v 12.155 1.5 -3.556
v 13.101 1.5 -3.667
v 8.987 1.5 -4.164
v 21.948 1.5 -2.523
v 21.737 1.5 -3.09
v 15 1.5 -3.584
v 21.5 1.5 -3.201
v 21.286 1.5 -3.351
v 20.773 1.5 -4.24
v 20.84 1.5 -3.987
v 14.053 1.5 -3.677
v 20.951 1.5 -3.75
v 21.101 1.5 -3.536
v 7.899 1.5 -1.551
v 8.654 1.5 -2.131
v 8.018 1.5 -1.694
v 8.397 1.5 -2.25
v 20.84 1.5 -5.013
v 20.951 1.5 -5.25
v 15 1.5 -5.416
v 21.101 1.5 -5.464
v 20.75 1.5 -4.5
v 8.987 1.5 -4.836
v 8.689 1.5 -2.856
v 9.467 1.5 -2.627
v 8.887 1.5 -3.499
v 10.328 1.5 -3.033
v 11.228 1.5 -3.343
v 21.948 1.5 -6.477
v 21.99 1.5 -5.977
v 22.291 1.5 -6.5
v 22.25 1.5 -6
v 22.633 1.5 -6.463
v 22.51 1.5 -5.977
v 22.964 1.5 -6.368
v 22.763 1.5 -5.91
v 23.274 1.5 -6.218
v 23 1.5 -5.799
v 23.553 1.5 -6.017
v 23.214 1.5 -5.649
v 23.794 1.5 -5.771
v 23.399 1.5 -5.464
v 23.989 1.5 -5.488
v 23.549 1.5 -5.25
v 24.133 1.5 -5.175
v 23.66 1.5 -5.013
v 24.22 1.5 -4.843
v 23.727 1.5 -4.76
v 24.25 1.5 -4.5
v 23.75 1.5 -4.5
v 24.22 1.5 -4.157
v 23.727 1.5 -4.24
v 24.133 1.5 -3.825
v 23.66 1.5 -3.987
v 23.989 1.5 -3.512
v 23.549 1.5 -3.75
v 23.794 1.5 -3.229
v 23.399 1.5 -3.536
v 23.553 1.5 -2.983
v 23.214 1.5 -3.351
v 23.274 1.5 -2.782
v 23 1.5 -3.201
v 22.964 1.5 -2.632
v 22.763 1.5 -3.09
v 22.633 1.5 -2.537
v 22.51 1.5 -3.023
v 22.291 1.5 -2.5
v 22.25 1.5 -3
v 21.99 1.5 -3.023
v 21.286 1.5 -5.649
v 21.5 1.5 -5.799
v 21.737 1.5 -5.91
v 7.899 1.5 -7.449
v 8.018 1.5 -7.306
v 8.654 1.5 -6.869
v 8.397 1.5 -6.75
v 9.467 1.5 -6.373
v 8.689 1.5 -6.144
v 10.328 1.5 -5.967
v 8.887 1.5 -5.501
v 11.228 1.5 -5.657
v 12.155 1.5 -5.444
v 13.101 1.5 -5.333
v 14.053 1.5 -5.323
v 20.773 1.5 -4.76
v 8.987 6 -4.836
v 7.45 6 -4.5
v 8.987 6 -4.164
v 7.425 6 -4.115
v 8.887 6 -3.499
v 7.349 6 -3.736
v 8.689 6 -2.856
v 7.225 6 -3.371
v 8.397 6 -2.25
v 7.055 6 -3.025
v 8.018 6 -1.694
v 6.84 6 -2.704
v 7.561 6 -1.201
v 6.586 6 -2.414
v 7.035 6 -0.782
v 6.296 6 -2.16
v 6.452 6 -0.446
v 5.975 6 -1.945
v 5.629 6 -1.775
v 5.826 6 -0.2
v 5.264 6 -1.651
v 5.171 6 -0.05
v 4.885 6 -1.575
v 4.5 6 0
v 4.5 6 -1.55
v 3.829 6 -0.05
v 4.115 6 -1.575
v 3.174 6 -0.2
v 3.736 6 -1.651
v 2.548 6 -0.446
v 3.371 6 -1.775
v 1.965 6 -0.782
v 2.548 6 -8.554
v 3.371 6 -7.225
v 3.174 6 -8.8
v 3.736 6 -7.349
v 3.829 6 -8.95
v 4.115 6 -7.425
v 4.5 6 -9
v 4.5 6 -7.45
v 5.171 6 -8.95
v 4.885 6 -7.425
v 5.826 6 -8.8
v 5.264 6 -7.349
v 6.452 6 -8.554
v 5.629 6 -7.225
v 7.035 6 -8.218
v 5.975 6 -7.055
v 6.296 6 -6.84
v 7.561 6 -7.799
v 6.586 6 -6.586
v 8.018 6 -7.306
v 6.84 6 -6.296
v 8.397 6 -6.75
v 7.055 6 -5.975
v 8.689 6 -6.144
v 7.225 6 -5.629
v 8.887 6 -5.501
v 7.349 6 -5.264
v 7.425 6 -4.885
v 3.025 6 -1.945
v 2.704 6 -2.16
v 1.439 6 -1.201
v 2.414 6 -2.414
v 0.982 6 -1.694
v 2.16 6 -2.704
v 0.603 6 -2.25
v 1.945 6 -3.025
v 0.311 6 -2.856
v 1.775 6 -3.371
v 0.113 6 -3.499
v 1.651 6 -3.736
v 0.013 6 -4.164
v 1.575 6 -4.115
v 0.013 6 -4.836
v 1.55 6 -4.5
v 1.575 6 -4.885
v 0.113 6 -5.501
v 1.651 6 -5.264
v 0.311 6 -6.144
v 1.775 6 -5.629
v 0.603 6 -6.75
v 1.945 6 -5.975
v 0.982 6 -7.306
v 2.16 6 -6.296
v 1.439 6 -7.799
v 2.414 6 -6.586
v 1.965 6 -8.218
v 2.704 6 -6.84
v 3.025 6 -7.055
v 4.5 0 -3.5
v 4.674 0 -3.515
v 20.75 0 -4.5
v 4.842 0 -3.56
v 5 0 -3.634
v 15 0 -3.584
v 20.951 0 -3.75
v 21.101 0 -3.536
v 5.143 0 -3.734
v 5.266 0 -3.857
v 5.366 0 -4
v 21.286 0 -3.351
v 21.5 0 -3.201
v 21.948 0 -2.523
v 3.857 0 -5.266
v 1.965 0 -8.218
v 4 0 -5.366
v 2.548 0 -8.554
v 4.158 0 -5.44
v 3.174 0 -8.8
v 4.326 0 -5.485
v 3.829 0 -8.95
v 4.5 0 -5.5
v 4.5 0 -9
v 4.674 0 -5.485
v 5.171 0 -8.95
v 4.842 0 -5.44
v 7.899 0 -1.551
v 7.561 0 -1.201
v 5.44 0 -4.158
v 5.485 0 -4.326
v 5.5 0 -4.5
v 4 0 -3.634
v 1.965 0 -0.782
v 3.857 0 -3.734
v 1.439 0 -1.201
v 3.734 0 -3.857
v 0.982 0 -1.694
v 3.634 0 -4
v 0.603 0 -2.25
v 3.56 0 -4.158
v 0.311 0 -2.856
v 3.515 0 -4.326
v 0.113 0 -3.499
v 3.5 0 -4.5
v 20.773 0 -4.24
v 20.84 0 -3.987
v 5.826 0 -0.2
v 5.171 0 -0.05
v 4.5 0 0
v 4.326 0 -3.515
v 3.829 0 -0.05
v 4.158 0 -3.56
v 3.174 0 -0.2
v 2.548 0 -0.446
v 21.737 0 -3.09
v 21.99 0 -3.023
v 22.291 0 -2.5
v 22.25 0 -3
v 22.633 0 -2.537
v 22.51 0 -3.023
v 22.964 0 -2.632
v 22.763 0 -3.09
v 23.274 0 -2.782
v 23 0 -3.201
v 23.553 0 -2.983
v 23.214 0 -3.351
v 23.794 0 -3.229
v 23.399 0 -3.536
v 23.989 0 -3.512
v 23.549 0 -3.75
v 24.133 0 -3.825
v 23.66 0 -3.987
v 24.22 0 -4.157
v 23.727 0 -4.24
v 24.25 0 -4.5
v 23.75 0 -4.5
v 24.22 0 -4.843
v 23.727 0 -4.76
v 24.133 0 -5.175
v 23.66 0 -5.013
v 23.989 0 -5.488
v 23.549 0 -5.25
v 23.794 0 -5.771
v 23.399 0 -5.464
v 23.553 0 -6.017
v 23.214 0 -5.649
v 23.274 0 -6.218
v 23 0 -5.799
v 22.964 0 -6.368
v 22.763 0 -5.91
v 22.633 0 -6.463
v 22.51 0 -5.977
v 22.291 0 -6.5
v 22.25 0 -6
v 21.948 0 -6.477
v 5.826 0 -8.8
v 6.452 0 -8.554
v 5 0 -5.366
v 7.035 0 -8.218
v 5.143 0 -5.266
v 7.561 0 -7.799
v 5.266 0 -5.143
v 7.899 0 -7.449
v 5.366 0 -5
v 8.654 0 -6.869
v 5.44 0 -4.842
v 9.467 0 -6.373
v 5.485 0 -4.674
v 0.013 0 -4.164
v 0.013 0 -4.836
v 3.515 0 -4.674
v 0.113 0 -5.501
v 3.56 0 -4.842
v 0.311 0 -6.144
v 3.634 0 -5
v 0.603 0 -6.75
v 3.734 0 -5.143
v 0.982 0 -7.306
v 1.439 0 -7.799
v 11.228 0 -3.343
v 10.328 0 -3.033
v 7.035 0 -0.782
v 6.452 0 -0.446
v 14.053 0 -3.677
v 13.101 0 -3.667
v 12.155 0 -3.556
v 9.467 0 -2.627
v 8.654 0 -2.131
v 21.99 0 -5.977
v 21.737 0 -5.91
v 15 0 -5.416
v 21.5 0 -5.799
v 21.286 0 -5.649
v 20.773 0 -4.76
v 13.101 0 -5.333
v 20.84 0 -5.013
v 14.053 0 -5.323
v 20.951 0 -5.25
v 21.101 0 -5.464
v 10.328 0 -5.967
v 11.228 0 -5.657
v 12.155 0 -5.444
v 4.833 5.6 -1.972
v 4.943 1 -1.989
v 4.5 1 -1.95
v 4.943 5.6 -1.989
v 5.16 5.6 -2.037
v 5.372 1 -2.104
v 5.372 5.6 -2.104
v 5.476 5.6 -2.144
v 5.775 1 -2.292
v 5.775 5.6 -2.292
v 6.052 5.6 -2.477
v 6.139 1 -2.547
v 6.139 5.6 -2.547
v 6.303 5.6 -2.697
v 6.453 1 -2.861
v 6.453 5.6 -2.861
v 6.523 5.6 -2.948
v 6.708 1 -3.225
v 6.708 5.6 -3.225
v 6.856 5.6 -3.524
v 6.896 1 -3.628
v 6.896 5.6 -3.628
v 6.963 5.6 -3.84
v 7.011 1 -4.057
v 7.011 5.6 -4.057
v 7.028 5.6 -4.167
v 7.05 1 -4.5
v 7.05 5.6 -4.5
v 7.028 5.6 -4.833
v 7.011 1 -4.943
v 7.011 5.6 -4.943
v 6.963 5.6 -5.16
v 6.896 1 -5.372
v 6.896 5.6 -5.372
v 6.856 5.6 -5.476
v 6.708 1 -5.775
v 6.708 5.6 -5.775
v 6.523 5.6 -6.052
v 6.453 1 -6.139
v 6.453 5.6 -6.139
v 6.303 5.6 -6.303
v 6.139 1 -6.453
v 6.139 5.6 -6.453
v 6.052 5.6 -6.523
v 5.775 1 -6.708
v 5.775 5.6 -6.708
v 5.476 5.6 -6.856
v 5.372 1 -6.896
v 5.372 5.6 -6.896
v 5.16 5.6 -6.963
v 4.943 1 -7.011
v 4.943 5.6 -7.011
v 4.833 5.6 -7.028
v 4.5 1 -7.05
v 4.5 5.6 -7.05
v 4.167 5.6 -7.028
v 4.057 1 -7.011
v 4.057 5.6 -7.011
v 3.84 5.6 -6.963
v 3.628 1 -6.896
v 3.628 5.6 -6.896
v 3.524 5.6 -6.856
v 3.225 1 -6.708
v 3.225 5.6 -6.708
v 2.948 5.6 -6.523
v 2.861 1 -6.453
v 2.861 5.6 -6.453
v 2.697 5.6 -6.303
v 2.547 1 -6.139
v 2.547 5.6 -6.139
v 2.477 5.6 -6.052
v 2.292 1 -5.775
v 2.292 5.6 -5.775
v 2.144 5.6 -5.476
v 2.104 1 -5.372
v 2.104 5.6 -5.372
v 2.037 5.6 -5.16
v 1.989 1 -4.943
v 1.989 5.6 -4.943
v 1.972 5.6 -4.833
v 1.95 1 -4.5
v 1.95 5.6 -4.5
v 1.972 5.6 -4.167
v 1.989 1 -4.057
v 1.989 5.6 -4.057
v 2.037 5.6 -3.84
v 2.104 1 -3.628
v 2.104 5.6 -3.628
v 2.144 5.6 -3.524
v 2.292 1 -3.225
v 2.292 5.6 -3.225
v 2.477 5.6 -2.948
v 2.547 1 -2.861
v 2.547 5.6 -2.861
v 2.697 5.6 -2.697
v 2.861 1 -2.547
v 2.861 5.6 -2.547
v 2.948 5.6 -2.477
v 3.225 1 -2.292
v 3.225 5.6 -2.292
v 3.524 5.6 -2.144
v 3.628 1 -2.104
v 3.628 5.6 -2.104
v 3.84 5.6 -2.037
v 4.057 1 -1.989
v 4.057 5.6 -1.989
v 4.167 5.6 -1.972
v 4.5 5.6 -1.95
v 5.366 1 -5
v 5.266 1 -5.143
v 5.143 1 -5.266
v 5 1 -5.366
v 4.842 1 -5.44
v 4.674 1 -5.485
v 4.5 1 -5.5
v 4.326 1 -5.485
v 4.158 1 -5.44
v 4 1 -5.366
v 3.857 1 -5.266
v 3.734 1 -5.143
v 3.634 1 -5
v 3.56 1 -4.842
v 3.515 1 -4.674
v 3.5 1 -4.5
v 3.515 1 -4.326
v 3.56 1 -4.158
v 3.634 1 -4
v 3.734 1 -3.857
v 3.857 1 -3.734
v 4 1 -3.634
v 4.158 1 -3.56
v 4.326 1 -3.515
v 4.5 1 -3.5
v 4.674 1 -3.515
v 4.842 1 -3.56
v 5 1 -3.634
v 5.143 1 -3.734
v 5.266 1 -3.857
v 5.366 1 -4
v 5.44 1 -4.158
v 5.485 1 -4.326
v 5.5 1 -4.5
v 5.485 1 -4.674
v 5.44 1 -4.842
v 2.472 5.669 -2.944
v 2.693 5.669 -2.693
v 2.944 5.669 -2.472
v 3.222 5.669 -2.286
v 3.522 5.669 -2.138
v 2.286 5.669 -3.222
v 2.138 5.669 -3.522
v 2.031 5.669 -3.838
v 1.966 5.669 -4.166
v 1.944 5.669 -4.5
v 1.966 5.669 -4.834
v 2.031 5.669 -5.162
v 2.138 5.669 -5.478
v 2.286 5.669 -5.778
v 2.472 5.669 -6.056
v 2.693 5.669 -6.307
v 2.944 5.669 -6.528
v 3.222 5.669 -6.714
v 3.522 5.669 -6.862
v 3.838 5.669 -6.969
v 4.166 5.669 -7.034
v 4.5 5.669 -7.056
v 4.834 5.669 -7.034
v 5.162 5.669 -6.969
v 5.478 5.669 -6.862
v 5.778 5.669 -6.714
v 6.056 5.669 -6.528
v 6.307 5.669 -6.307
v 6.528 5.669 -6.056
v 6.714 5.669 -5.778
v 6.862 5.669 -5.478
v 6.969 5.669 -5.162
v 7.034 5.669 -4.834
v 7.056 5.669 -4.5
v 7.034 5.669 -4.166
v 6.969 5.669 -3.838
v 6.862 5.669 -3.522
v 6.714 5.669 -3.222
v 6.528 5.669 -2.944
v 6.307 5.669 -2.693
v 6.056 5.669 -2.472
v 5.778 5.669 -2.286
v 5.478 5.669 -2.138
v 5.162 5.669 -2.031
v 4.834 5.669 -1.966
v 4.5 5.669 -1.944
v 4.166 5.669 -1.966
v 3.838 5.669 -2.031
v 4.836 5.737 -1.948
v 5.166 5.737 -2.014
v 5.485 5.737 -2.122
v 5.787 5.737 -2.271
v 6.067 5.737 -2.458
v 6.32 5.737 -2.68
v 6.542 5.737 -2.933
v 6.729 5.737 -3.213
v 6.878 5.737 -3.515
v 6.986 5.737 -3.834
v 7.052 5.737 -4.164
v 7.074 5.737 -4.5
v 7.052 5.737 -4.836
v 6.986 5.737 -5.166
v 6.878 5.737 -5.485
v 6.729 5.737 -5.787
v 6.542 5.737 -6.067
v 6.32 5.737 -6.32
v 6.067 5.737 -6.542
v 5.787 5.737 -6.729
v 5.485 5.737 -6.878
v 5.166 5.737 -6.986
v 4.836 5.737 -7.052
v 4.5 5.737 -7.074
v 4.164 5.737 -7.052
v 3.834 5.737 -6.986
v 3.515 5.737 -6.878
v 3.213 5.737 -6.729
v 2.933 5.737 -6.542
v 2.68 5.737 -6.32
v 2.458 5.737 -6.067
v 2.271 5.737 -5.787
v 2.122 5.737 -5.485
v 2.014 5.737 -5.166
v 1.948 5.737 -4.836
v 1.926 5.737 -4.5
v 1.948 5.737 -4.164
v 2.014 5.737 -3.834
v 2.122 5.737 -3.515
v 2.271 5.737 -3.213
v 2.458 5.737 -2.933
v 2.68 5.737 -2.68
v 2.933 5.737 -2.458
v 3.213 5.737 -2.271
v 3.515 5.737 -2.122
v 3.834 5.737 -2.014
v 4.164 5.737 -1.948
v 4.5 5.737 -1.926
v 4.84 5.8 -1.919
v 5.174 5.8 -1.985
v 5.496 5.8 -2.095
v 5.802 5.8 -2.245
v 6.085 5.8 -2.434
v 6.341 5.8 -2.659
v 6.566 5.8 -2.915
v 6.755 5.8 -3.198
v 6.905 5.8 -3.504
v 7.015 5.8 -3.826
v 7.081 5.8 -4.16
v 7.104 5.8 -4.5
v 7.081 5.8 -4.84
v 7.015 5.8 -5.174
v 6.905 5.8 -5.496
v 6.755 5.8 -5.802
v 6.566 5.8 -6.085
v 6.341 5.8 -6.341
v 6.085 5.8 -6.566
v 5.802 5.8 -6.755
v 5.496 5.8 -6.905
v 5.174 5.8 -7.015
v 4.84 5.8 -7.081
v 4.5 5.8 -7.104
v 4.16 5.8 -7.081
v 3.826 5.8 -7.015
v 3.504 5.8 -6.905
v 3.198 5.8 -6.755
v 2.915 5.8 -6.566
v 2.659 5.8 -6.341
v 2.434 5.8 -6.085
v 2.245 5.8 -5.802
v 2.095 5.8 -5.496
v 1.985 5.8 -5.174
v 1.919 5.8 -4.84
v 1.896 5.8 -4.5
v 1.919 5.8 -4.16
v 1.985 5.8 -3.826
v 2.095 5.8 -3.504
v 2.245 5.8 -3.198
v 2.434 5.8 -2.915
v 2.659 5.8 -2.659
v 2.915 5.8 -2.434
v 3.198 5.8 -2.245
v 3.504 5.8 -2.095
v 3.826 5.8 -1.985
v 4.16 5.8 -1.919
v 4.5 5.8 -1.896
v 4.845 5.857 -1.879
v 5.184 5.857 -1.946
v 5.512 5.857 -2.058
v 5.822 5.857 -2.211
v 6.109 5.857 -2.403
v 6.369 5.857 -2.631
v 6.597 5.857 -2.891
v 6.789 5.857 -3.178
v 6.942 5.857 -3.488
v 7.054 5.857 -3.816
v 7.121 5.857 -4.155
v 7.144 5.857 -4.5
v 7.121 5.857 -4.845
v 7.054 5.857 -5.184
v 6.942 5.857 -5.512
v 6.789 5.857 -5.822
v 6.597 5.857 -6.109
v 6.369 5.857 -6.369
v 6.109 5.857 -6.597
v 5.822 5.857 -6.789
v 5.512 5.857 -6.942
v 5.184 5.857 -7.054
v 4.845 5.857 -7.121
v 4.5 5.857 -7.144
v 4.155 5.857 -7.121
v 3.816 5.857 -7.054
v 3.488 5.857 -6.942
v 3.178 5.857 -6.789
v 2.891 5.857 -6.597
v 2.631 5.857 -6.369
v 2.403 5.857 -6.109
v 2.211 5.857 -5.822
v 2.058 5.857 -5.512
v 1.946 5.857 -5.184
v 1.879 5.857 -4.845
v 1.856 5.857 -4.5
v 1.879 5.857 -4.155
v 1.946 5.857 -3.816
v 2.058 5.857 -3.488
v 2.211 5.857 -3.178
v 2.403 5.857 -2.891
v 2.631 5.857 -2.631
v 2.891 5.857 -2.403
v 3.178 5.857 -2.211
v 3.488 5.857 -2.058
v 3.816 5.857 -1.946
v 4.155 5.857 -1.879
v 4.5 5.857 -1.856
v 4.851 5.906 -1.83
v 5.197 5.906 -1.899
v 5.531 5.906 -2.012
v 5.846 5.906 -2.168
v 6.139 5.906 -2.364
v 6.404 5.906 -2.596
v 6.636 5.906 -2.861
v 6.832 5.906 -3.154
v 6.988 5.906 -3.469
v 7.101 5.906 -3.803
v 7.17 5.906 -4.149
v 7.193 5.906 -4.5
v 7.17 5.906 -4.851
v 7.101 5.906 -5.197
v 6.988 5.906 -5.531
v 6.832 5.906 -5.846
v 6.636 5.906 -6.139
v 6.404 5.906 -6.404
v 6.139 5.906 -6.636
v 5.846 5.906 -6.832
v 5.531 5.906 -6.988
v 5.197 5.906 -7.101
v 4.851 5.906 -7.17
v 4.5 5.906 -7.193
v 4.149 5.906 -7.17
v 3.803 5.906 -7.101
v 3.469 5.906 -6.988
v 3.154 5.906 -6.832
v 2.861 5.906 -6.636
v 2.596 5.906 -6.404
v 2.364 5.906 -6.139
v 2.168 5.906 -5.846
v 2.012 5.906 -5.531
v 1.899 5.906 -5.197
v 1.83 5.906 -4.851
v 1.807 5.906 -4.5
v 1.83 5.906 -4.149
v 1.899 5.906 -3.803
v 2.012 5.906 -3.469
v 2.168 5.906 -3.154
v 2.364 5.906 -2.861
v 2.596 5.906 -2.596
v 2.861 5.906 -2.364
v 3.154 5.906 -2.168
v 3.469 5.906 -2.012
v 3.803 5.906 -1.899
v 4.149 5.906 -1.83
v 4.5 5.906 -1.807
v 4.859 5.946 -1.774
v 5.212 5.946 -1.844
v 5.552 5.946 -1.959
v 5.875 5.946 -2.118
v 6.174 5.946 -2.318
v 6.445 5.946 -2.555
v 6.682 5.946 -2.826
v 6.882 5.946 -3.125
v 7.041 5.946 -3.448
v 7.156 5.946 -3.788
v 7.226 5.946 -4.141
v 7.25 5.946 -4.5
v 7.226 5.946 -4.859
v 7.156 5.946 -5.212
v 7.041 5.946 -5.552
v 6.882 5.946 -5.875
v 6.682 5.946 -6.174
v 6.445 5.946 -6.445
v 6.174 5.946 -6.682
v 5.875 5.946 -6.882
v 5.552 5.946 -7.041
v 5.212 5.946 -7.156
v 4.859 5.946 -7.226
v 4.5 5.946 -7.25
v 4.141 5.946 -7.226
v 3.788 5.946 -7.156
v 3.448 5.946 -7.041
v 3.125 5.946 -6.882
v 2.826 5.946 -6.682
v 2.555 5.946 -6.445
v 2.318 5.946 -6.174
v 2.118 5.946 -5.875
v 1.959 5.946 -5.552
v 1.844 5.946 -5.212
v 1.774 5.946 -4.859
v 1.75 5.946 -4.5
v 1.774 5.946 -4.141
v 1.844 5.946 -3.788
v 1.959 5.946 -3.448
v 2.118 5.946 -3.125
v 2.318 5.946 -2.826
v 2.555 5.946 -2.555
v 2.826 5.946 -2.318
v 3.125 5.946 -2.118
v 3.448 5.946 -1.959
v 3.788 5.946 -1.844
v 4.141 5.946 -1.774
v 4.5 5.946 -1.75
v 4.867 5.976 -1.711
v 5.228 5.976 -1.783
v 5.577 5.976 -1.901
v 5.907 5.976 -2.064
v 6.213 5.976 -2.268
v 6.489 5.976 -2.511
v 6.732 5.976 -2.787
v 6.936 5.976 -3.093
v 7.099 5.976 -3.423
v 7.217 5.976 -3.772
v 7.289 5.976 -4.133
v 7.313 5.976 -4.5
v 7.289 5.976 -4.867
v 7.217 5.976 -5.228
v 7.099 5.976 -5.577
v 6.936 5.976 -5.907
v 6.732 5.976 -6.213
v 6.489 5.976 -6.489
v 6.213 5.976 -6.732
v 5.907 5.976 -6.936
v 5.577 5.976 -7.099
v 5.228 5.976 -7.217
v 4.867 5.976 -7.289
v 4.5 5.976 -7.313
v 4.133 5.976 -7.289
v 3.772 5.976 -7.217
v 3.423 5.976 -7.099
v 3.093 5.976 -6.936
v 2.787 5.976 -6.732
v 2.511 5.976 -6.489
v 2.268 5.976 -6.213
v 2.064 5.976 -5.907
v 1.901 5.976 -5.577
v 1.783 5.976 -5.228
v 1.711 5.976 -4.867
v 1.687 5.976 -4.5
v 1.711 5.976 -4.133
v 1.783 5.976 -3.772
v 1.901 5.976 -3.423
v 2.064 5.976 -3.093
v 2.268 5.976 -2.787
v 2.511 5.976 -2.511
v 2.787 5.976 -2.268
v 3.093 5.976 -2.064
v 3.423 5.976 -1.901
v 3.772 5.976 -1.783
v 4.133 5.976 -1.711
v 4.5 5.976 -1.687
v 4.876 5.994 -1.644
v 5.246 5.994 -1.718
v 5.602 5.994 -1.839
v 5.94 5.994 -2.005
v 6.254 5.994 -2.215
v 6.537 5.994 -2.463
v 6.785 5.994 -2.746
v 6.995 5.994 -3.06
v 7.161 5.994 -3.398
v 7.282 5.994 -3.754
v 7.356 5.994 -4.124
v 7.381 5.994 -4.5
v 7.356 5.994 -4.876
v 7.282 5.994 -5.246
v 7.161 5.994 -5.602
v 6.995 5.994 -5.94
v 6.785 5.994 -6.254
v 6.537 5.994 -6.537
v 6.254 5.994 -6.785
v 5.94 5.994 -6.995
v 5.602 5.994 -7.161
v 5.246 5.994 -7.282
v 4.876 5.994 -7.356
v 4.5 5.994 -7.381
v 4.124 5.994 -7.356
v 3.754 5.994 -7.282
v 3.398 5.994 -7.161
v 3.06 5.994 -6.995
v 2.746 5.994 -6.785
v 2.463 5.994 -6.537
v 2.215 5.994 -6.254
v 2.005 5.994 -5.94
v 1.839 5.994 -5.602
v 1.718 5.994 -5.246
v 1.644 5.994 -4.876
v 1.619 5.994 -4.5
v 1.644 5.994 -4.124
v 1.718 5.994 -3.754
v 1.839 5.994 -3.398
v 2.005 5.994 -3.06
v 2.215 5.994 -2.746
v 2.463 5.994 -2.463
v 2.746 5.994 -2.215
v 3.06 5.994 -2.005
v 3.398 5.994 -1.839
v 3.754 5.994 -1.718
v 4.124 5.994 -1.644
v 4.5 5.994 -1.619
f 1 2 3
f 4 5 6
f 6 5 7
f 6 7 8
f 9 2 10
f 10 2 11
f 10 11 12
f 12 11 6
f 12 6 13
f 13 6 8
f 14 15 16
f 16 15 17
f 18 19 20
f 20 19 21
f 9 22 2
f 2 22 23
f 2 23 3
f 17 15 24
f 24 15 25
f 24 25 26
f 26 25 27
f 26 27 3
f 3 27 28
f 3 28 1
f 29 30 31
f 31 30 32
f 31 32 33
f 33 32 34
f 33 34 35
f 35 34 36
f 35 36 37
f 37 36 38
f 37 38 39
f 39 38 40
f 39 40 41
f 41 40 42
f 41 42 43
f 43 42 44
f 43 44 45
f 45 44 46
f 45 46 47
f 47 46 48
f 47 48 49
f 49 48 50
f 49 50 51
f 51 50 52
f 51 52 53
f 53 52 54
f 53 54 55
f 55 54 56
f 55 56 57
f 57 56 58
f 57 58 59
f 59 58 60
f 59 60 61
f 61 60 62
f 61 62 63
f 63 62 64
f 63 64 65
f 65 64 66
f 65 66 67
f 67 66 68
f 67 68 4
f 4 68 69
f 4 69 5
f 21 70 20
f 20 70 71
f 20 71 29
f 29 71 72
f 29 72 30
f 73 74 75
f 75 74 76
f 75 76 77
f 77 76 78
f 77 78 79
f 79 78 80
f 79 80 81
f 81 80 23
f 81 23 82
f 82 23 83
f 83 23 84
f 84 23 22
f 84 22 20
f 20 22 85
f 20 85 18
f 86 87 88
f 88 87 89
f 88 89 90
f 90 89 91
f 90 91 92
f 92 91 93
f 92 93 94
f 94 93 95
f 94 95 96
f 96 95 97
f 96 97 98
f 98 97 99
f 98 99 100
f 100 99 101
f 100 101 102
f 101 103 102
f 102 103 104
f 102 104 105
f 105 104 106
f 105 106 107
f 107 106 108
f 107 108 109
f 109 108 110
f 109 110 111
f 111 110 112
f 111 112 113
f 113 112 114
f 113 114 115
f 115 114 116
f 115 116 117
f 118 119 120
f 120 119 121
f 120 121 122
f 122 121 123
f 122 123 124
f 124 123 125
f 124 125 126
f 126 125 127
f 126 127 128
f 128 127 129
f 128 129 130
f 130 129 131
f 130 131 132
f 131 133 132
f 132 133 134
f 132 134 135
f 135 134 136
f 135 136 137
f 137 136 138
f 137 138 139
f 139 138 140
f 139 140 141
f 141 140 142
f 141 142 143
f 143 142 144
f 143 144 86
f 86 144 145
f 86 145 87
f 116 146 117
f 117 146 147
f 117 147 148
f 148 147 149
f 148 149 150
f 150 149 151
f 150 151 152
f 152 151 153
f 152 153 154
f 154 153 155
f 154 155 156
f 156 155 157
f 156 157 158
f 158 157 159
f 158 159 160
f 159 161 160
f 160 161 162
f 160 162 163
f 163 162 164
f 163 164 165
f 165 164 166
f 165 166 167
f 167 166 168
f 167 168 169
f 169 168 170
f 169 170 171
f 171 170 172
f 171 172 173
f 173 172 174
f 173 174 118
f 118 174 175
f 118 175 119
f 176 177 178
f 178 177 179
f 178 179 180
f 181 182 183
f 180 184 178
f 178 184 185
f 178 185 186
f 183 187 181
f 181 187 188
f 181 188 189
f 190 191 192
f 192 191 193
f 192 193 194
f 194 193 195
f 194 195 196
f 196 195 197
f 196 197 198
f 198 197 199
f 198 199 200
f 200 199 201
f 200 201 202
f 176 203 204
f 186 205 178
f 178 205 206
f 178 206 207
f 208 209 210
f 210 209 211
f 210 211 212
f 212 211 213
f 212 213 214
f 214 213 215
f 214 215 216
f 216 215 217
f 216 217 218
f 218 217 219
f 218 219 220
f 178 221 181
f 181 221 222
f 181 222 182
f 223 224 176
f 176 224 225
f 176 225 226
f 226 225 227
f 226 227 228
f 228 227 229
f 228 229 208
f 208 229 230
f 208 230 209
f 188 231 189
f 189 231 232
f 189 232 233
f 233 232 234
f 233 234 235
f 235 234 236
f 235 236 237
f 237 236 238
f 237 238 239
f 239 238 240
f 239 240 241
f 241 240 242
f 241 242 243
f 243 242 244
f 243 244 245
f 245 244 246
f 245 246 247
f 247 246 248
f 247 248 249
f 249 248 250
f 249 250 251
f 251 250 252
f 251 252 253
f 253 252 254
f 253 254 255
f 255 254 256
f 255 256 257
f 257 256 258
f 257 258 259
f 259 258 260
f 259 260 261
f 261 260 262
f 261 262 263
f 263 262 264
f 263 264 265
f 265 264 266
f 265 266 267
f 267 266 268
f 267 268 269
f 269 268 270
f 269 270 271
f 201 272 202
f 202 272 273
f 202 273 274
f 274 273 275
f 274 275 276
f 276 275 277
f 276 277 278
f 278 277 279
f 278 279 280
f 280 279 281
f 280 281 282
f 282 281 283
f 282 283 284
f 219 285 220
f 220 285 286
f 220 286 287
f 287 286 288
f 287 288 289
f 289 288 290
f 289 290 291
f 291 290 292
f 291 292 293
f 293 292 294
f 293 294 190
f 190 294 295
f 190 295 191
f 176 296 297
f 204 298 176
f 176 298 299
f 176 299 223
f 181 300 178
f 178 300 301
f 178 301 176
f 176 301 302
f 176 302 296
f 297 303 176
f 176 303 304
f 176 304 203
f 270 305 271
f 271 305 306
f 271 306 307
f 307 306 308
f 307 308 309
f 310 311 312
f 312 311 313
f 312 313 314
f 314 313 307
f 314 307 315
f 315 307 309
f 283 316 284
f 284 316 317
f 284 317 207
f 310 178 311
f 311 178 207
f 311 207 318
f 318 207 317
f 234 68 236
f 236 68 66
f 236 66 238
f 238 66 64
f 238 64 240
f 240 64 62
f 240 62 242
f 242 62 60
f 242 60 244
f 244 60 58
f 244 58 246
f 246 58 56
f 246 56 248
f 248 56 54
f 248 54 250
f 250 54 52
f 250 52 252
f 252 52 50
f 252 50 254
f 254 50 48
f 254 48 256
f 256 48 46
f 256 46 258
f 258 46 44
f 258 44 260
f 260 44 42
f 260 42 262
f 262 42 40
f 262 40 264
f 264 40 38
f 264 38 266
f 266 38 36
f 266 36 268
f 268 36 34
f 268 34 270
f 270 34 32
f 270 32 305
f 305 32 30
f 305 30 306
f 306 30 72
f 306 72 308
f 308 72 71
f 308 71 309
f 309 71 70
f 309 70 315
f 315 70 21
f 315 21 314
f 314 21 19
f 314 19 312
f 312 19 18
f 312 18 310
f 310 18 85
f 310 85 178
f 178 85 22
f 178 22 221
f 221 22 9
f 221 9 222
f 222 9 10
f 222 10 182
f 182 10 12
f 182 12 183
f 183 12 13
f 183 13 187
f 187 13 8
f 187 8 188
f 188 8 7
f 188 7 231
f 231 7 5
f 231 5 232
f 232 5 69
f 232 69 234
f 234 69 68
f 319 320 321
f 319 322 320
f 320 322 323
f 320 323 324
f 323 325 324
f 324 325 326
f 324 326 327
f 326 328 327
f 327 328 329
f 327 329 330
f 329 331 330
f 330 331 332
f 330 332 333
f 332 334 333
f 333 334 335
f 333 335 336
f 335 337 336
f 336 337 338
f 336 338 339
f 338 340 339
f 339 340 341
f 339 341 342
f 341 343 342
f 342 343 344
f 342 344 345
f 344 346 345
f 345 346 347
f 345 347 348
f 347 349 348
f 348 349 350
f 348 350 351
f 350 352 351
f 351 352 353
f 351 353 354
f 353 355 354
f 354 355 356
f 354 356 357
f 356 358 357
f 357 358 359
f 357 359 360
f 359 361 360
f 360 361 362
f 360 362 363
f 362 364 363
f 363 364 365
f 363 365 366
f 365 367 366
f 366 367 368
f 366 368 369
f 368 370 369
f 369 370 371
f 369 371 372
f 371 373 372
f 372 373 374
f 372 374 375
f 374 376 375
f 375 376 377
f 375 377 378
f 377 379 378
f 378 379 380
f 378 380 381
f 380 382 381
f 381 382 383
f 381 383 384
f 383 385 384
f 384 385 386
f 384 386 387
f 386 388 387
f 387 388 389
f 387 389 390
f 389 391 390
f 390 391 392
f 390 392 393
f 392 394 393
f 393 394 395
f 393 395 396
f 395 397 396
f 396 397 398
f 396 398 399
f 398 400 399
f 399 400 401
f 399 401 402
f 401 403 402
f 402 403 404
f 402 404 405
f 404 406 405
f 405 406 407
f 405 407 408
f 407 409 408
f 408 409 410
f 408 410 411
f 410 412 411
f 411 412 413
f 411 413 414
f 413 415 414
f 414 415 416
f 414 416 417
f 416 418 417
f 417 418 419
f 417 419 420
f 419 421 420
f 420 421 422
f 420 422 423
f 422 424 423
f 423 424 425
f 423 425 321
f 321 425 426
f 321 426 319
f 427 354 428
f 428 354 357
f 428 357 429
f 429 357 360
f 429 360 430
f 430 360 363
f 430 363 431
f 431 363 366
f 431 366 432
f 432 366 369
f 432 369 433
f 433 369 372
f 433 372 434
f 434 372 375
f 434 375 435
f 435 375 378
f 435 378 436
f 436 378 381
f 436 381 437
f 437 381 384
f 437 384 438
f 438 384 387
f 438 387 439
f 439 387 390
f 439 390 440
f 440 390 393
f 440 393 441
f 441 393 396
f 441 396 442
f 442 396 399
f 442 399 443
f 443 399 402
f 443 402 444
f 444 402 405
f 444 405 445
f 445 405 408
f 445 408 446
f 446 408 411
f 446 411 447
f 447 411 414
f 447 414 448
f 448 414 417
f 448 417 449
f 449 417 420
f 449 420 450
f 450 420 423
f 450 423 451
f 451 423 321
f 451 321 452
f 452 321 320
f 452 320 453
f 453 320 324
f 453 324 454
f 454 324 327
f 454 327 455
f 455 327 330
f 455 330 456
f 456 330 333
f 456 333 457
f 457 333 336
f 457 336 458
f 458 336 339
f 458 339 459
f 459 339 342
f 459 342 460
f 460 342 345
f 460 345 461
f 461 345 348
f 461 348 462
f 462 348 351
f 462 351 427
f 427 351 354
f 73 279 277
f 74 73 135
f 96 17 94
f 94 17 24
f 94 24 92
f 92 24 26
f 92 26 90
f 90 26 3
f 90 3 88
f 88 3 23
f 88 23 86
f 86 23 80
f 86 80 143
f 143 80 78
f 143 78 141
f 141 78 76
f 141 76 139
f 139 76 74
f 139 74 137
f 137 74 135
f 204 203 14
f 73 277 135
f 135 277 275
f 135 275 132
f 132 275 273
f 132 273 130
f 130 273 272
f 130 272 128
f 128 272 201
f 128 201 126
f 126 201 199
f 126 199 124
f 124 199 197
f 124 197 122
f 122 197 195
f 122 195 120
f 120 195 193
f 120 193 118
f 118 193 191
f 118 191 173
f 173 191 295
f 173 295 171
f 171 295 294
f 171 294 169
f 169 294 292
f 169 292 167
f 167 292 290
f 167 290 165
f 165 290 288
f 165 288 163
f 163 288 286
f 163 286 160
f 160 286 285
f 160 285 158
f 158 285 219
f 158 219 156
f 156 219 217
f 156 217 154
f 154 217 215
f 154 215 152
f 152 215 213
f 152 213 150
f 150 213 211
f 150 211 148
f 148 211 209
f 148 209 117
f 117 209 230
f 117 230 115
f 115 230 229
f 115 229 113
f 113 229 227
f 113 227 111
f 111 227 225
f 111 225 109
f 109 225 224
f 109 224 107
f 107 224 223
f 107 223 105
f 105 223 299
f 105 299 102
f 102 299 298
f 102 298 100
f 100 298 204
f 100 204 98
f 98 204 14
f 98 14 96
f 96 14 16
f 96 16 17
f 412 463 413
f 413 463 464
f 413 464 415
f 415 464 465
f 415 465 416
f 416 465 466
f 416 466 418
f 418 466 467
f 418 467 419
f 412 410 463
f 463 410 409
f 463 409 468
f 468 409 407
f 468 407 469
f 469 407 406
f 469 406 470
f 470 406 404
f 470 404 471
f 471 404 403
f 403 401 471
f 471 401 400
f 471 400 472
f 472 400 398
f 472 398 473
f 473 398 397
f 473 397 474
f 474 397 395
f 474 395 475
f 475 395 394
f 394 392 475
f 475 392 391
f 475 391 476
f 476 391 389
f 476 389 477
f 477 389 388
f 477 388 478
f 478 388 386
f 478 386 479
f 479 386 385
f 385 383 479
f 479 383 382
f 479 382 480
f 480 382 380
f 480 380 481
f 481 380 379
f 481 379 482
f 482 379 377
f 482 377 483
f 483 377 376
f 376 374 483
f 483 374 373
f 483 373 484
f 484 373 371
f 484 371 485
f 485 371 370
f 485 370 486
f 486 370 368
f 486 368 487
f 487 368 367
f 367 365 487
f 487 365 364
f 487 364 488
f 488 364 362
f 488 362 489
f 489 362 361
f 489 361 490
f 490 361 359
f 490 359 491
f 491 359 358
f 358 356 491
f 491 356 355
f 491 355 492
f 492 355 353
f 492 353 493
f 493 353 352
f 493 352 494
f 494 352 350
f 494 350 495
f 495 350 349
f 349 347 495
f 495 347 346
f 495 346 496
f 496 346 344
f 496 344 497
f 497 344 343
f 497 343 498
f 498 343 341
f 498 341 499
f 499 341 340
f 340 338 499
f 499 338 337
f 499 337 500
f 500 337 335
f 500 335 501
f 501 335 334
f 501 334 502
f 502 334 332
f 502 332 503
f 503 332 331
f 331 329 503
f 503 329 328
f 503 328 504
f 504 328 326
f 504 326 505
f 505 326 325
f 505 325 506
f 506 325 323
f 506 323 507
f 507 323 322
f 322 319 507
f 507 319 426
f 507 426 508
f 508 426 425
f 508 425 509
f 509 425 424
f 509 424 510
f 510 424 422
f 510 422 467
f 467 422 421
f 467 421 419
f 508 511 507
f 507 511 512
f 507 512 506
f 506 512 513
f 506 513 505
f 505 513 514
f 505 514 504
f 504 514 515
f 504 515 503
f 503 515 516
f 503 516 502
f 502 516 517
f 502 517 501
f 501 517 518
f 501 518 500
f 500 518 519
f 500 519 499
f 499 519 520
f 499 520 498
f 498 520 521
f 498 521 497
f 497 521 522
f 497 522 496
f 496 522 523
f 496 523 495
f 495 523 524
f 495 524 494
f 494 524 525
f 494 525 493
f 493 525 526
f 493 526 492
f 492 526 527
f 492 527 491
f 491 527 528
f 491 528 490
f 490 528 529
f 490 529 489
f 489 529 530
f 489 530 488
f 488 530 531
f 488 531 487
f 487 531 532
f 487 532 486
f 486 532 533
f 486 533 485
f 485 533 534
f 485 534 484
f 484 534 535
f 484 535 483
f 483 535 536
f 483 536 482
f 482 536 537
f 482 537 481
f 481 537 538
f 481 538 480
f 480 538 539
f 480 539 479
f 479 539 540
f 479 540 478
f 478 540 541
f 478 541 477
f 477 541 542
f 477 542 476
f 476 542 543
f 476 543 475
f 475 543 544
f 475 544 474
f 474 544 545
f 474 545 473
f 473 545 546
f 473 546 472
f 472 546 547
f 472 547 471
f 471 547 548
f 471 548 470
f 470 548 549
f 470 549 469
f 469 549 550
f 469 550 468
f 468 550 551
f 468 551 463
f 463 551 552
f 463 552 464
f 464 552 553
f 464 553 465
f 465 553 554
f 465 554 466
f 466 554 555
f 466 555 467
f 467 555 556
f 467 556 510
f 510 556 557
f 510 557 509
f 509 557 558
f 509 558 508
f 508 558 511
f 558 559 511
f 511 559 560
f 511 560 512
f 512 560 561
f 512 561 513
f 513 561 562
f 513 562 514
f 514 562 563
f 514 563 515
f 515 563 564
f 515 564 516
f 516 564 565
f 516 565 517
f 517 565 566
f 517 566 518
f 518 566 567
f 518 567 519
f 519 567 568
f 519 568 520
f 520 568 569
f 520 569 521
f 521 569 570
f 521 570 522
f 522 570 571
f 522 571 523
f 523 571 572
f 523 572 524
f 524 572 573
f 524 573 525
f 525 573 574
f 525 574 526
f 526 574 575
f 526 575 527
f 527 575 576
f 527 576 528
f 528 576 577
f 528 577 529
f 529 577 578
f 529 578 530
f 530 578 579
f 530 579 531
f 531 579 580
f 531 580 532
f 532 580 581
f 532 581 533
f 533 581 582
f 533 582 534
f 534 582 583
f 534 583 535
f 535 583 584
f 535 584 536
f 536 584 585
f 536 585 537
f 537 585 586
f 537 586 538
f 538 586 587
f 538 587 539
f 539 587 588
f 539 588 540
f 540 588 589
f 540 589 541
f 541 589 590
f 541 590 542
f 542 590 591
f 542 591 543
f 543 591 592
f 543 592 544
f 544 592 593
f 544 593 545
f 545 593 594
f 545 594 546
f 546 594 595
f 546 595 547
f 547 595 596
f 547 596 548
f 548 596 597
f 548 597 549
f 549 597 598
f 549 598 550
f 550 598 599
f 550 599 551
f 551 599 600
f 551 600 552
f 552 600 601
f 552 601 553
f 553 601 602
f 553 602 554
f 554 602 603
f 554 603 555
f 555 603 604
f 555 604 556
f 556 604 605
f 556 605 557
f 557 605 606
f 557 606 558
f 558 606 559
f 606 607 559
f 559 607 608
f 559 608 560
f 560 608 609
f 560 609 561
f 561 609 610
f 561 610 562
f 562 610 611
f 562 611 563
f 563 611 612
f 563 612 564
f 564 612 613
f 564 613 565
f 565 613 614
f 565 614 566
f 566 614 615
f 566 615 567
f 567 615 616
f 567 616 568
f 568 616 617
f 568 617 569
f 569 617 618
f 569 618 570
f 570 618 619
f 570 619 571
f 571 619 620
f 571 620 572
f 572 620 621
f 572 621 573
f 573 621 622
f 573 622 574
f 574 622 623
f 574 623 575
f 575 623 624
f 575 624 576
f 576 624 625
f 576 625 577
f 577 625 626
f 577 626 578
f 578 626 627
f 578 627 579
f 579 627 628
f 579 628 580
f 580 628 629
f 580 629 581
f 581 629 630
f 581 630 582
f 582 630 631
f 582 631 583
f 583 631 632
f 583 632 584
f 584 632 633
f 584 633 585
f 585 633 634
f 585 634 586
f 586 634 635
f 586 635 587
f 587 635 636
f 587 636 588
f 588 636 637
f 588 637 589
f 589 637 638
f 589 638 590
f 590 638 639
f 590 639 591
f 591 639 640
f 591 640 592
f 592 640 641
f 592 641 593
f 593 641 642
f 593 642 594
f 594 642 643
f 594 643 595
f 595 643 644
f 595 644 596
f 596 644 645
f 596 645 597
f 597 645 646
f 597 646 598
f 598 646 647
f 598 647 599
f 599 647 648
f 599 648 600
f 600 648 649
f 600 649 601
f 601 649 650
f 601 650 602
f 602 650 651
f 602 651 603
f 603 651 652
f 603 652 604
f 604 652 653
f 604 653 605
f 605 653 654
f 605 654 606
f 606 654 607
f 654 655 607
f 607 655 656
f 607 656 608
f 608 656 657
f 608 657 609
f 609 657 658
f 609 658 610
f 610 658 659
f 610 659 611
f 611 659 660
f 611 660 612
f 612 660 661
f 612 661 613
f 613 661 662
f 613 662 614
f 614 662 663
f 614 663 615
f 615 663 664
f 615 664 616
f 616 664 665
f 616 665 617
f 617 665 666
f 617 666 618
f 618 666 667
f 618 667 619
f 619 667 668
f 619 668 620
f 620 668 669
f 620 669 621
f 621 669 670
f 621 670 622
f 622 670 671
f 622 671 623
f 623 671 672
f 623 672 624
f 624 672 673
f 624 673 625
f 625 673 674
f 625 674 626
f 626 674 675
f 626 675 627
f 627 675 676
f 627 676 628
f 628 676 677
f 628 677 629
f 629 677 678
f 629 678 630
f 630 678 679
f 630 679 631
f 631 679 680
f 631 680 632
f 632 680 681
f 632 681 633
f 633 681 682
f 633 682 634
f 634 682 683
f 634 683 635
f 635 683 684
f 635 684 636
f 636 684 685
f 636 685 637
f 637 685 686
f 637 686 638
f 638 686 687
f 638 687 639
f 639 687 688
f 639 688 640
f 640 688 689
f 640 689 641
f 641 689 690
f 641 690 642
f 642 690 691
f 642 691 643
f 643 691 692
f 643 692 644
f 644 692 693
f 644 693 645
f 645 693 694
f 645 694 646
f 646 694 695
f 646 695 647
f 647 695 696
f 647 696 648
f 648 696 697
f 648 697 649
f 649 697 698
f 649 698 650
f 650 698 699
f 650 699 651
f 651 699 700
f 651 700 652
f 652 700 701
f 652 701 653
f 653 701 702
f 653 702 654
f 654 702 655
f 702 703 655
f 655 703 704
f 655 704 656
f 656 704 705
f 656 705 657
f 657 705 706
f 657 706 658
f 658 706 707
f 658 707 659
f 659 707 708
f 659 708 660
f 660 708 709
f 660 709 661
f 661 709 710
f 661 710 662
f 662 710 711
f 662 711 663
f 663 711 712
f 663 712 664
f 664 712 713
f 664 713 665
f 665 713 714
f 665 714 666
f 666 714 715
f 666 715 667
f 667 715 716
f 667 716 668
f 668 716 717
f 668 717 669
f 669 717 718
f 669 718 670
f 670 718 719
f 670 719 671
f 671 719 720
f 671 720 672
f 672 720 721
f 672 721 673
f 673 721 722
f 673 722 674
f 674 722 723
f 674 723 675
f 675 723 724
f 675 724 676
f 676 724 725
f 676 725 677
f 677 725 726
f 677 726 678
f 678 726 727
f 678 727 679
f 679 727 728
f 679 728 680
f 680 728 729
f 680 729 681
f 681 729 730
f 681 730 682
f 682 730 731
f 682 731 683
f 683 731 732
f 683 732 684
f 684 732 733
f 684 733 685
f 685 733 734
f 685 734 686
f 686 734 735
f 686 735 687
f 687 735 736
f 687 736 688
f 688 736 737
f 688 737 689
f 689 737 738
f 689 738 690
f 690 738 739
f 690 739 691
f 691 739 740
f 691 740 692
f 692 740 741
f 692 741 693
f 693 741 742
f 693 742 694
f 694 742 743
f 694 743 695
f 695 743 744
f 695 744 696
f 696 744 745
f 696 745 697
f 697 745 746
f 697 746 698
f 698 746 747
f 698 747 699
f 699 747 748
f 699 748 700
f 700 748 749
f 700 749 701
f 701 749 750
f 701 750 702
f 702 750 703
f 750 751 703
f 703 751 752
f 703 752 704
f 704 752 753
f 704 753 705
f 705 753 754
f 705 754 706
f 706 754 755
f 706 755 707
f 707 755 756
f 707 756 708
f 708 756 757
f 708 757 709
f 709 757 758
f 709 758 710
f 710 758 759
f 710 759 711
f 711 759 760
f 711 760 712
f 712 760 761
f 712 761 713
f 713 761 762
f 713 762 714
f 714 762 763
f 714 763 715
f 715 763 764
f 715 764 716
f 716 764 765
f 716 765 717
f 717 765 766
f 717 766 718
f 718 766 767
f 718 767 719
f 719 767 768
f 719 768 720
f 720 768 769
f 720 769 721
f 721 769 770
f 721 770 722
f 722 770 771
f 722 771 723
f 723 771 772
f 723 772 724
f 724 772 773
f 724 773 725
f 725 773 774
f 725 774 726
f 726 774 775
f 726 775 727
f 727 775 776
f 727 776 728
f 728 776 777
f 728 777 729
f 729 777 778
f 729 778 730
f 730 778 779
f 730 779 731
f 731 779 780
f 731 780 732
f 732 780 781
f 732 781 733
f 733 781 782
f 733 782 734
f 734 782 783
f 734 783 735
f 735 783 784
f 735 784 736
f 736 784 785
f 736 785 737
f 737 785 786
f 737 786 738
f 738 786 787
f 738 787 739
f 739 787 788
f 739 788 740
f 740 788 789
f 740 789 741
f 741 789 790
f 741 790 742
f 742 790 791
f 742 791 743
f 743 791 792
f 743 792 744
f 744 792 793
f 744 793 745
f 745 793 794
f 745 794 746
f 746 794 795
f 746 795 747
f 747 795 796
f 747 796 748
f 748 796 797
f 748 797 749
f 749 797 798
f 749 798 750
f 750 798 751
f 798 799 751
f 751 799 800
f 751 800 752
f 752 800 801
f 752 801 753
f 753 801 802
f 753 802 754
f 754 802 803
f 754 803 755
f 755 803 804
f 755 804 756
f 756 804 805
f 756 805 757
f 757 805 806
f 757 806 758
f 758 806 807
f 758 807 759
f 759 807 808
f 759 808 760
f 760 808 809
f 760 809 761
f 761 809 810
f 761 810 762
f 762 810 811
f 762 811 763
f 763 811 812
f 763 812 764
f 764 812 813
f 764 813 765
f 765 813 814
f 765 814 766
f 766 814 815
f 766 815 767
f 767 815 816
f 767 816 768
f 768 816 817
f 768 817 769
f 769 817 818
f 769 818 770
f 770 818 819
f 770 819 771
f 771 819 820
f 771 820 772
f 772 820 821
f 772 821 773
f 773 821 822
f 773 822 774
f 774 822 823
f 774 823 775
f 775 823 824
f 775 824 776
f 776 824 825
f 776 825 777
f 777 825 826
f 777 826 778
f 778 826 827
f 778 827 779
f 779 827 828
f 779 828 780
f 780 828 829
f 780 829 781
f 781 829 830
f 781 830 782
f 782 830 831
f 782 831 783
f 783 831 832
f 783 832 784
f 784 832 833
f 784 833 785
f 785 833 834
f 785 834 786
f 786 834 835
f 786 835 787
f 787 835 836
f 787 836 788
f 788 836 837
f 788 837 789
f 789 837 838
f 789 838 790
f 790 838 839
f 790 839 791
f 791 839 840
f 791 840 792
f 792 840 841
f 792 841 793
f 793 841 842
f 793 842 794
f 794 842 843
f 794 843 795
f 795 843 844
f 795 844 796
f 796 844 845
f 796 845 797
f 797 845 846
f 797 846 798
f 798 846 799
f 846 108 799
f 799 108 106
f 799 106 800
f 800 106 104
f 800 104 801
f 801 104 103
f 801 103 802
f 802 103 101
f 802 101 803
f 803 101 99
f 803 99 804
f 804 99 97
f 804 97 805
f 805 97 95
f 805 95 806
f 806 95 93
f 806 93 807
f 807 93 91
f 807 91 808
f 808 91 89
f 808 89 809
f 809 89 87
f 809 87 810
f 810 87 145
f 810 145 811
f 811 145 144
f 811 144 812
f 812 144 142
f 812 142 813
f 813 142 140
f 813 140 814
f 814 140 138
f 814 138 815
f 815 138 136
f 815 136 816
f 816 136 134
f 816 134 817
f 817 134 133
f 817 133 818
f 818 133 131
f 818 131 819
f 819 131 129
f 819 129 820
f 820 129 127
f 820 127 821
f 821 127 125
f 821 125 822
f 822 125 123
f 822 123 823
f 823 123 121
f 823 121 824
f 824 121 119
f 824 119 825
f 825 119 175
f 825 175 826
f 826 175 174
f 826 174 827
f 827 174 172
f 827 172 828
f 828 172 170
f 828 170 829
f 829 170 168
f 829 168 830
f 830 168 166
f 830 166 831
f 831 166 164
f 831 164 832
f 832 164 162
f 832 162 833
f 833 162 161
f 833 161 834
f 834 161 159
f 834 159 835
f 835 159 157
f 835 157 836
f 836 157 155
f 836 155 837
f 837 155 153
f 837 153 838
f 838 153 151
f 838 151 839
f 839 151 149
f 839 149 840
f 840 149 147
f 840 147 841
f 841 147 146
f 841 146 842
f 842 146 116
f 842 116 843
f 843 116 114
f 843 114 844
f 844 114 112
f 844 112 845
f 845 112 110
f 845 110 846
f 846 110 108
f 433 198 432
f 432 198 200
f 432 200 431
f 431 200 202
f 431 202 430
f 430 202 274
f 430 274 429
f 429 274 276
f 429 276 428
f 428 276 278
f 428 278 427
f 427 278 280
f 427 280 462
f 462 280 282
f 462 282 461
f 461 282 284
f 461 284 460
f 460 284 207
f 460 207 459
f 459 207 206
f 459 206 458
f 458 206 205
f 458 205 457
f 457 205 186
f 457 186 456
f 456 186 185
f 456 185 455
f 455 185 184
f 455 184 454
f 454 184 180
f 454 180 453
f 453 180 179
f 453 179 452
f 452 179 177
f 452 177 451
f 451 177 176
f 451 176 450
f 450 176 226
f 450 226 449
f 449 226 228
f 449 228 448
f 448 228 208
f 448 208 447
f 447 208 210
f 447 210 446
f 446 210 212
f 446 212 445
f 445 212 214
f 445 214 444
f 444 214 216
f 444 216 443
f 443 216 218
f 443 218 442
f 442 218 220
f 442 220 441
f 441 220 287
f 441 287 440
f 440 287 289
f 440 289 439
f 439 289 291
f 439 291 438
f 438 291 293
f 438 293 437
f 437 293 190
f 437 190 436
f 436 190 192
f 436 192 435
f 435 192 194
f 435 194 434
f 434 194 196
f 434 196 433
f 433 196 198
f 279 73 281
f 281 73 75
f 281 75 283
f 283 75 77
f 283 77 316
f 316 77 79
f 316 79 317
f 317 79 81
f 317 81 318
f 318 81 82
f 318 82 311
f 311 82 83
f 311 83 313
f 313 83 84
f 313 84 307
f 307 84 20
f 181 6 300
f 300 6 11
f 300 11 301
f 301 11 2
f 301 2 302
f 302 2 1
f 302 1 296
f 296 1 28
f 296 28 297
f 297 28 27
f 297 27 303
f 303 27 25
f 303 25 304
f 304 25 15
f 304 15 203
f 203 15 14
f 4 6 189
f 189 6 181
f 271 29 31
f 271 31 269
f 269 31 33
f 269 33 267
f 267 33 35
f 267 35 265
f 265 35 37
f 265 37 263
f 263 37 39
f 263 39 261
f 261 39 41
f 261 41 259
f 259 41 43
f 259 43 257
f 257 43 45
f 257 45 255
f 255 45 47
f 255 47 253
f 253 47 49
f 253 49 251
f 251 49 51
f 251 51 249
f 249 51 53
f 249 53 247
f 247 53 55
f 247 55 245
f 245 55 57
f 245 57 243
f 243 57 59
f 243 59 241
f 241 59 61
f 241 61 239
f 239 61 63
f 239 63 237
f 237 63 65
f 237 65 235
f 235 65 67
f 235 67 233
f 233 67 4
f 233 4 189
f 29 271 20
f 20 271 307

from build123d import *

# Parameters (mm, degrees)
SKETCH2_W               = 25
SKETCH2_H               = 9
BOSS_EXTRUDE3_DEPTH     = 6
SKETCH3_R               = 2.55
CUT_EXTRUDE1_DEPTH      = 5
CUT_EXTRUDE2_DEPTH      = 28.239676944
CUT_EXTRUDE2_DEPTH_BACK = 28.239676944
SKETCH4_R               = 1.5
SKETCH5_R               = 1.5
CUT_EXTRUDE3_DEPTH      = 4.5
CUT_EXTRUDE4_DEPTH      = 28.239676944
FILLET2_R               = 0.4
SKETCH8_R               = 1
CUT_EXTRUDE5_DEPTH      = 28.239676944
CUT_EXTRUDE7_DEPTH      = 10


with BuildPart() as part:
    # Sketch2 → Boss-Extrude3 (new body)
    with BuildSketch(Plane(origin=(0, 0, 0), x_dir=(1, 0, 0), z_dir=(0, 1, 0))):
        with Locations((12.5, 4.5)):
            Rectangle(SKETCH2_W, SKETCH2_H)
    extrude(amount=BOSS_EXTRUDE3_DEPTH)

    # Sketch3 → Cut-Extrude1 (cut)
    with BuildSketch(Plane(origin=(0, 6, 0), x_dir=(1, 0, 0), z_dir=(0, 1, 0))):
        with Locations(Location((4.5, 4.5, 0), (0, 0, 270))):
            Circle(SKETCH3_R)
    extrude(amount=-CUT_EXTRUDE1_DEPTH, mode=Mode.SUBTRACT)

    # Sketch4 → Cut-Extrude2 (cut, two sides: drawn at the far end of the back side and taken through both)
    with BuildSketch(Plane(origin=(0, 6, 0), x_dir=(1, 0, 0), z_dir=(0, 1, 0)).offset(-CUT_EXTRUDE2_DEPTH_BACK)):
        with Locations(Location((22.25, 4.5, 0), (0, 0, 270))):
            Circle(SKETCH4_R)
    extrude(amount=CUT_EXTRUDE2_DEPTH + CUT_EXTRUDE2_DEPTH_BACK, mode=Mode.SUBTRACT)

    # Sketch5 → Cut-Extrude3 (cut)
    with BuildSketch(Plane(origin=(0, 6, 0), x_dir=(1, 0, 0), z_dir=(0, 1, 0))):
        with BuildLine():
            Line((25, 9), (4.5, 9))
            ThreePointArc((4.5, 9), (7.681980515, 7.681980515), (9, 4.5))
            ThreePointArc((9, 4.5), (7.681980515, 1.318019485), (4.5, 0))
            Line((4.5, 0), (25, 0))
            Line((25, 0), (25, 9))
        make_face()
        with Locations(Location((22.25, 4.5, 0), (0, 0, 270))):
            Circle(SKETCH5_R, mode=Mode.SUBTRACT)
    extrude(amount=-CUT_EXTRUDE3_DEPTH, mode=Mode.SUBTRACT)

    # Sketch6 → Cut-Extrude4 (cut, through all)
    with BuildSketch(Plane(origin=(0, 6, 0), x_dir=(1, 0, 0), z_dir=(0, 1, 0))):
        with BuildLine():
            ThreePointArc((0, 4.5), (1.318019485, 7.681980515), (4.5, 9))
            Line((4.5, 9), (0, 9))
            Line((0, 9), (0, 4.5))
        make_face()
        with BuildLine():
            ThreePointArc((4.5, 0), (1.318019485, 1.318019485), (0, 4.5))
            Line((0, 4.5), (0, 0))
            Line((0, 0), (4.5, 0))
        make_face()
    extrude(amount=-CUT_EXTRUDE4_DEPTH, mode=Mode.SUBTRACT)

    # Fillet2
    fillet2_edges = [part.edges().sort_by_distance(p)[0] for p in [
        (4.5, 6, -7.05),
    ]]
    fillet(fillet2_edges, radius=FILLET2_R)

    # Sketch8 → Cut-Extrude5 (cut, through all)
    with BuildSketch(Plane.XZ):
        with Locations(Location((4.5, -4.5, 0), (0, 0, 270))):
            Circle(SKETCH8_R)
    extrude(amount=-CUT_EXTRUDE5_DEPTH, mode=Mode.SUBTRACT)

    # Sketch9 → Cut-Extrude7 (cut)
    with BuildSketch(Plane(origin=(0, 1.5, 0), x_dir=(1, 0, 0), z_dir=(0, 1, 0))):
        with BuildLine():
            Line((25, 9), (4.5, 9))
            ThreePointArc((4.5, 9), (6.368244423, 8.593856712), (7.899255542, 7.448739011))
            ThreePointArc((7.899255542, 7.448739011), (11.227526502, 5.656546092), (15, 5.416157335))
            Line((15, 5.416157335), (21.94811323, 6.477084818))
            ThreePointArc((21.94811323, 6.477084818), (24.25, 4.499999978), (21.948113186, 2.522915189))
            Line((21.948113186, 2.522915189), (15, 3.583842665))
            ThreePointArc((15, 3.583842665), (11.227526502, 3.343453908), (7.899255542, 1.551260989))
            ThreePointArc((7.899255542, 1.551260989), (6.368244423, 0.406143288), (4.5, 0))
            Line((4.5, 0), (25, 0))
            Line((25, 0), (25, 9))
        make_face()
    extrude(amount=-CUT_EXTRUDE7_DEPTH, mode=Mode.SUBTRACT)


solid = part.part
